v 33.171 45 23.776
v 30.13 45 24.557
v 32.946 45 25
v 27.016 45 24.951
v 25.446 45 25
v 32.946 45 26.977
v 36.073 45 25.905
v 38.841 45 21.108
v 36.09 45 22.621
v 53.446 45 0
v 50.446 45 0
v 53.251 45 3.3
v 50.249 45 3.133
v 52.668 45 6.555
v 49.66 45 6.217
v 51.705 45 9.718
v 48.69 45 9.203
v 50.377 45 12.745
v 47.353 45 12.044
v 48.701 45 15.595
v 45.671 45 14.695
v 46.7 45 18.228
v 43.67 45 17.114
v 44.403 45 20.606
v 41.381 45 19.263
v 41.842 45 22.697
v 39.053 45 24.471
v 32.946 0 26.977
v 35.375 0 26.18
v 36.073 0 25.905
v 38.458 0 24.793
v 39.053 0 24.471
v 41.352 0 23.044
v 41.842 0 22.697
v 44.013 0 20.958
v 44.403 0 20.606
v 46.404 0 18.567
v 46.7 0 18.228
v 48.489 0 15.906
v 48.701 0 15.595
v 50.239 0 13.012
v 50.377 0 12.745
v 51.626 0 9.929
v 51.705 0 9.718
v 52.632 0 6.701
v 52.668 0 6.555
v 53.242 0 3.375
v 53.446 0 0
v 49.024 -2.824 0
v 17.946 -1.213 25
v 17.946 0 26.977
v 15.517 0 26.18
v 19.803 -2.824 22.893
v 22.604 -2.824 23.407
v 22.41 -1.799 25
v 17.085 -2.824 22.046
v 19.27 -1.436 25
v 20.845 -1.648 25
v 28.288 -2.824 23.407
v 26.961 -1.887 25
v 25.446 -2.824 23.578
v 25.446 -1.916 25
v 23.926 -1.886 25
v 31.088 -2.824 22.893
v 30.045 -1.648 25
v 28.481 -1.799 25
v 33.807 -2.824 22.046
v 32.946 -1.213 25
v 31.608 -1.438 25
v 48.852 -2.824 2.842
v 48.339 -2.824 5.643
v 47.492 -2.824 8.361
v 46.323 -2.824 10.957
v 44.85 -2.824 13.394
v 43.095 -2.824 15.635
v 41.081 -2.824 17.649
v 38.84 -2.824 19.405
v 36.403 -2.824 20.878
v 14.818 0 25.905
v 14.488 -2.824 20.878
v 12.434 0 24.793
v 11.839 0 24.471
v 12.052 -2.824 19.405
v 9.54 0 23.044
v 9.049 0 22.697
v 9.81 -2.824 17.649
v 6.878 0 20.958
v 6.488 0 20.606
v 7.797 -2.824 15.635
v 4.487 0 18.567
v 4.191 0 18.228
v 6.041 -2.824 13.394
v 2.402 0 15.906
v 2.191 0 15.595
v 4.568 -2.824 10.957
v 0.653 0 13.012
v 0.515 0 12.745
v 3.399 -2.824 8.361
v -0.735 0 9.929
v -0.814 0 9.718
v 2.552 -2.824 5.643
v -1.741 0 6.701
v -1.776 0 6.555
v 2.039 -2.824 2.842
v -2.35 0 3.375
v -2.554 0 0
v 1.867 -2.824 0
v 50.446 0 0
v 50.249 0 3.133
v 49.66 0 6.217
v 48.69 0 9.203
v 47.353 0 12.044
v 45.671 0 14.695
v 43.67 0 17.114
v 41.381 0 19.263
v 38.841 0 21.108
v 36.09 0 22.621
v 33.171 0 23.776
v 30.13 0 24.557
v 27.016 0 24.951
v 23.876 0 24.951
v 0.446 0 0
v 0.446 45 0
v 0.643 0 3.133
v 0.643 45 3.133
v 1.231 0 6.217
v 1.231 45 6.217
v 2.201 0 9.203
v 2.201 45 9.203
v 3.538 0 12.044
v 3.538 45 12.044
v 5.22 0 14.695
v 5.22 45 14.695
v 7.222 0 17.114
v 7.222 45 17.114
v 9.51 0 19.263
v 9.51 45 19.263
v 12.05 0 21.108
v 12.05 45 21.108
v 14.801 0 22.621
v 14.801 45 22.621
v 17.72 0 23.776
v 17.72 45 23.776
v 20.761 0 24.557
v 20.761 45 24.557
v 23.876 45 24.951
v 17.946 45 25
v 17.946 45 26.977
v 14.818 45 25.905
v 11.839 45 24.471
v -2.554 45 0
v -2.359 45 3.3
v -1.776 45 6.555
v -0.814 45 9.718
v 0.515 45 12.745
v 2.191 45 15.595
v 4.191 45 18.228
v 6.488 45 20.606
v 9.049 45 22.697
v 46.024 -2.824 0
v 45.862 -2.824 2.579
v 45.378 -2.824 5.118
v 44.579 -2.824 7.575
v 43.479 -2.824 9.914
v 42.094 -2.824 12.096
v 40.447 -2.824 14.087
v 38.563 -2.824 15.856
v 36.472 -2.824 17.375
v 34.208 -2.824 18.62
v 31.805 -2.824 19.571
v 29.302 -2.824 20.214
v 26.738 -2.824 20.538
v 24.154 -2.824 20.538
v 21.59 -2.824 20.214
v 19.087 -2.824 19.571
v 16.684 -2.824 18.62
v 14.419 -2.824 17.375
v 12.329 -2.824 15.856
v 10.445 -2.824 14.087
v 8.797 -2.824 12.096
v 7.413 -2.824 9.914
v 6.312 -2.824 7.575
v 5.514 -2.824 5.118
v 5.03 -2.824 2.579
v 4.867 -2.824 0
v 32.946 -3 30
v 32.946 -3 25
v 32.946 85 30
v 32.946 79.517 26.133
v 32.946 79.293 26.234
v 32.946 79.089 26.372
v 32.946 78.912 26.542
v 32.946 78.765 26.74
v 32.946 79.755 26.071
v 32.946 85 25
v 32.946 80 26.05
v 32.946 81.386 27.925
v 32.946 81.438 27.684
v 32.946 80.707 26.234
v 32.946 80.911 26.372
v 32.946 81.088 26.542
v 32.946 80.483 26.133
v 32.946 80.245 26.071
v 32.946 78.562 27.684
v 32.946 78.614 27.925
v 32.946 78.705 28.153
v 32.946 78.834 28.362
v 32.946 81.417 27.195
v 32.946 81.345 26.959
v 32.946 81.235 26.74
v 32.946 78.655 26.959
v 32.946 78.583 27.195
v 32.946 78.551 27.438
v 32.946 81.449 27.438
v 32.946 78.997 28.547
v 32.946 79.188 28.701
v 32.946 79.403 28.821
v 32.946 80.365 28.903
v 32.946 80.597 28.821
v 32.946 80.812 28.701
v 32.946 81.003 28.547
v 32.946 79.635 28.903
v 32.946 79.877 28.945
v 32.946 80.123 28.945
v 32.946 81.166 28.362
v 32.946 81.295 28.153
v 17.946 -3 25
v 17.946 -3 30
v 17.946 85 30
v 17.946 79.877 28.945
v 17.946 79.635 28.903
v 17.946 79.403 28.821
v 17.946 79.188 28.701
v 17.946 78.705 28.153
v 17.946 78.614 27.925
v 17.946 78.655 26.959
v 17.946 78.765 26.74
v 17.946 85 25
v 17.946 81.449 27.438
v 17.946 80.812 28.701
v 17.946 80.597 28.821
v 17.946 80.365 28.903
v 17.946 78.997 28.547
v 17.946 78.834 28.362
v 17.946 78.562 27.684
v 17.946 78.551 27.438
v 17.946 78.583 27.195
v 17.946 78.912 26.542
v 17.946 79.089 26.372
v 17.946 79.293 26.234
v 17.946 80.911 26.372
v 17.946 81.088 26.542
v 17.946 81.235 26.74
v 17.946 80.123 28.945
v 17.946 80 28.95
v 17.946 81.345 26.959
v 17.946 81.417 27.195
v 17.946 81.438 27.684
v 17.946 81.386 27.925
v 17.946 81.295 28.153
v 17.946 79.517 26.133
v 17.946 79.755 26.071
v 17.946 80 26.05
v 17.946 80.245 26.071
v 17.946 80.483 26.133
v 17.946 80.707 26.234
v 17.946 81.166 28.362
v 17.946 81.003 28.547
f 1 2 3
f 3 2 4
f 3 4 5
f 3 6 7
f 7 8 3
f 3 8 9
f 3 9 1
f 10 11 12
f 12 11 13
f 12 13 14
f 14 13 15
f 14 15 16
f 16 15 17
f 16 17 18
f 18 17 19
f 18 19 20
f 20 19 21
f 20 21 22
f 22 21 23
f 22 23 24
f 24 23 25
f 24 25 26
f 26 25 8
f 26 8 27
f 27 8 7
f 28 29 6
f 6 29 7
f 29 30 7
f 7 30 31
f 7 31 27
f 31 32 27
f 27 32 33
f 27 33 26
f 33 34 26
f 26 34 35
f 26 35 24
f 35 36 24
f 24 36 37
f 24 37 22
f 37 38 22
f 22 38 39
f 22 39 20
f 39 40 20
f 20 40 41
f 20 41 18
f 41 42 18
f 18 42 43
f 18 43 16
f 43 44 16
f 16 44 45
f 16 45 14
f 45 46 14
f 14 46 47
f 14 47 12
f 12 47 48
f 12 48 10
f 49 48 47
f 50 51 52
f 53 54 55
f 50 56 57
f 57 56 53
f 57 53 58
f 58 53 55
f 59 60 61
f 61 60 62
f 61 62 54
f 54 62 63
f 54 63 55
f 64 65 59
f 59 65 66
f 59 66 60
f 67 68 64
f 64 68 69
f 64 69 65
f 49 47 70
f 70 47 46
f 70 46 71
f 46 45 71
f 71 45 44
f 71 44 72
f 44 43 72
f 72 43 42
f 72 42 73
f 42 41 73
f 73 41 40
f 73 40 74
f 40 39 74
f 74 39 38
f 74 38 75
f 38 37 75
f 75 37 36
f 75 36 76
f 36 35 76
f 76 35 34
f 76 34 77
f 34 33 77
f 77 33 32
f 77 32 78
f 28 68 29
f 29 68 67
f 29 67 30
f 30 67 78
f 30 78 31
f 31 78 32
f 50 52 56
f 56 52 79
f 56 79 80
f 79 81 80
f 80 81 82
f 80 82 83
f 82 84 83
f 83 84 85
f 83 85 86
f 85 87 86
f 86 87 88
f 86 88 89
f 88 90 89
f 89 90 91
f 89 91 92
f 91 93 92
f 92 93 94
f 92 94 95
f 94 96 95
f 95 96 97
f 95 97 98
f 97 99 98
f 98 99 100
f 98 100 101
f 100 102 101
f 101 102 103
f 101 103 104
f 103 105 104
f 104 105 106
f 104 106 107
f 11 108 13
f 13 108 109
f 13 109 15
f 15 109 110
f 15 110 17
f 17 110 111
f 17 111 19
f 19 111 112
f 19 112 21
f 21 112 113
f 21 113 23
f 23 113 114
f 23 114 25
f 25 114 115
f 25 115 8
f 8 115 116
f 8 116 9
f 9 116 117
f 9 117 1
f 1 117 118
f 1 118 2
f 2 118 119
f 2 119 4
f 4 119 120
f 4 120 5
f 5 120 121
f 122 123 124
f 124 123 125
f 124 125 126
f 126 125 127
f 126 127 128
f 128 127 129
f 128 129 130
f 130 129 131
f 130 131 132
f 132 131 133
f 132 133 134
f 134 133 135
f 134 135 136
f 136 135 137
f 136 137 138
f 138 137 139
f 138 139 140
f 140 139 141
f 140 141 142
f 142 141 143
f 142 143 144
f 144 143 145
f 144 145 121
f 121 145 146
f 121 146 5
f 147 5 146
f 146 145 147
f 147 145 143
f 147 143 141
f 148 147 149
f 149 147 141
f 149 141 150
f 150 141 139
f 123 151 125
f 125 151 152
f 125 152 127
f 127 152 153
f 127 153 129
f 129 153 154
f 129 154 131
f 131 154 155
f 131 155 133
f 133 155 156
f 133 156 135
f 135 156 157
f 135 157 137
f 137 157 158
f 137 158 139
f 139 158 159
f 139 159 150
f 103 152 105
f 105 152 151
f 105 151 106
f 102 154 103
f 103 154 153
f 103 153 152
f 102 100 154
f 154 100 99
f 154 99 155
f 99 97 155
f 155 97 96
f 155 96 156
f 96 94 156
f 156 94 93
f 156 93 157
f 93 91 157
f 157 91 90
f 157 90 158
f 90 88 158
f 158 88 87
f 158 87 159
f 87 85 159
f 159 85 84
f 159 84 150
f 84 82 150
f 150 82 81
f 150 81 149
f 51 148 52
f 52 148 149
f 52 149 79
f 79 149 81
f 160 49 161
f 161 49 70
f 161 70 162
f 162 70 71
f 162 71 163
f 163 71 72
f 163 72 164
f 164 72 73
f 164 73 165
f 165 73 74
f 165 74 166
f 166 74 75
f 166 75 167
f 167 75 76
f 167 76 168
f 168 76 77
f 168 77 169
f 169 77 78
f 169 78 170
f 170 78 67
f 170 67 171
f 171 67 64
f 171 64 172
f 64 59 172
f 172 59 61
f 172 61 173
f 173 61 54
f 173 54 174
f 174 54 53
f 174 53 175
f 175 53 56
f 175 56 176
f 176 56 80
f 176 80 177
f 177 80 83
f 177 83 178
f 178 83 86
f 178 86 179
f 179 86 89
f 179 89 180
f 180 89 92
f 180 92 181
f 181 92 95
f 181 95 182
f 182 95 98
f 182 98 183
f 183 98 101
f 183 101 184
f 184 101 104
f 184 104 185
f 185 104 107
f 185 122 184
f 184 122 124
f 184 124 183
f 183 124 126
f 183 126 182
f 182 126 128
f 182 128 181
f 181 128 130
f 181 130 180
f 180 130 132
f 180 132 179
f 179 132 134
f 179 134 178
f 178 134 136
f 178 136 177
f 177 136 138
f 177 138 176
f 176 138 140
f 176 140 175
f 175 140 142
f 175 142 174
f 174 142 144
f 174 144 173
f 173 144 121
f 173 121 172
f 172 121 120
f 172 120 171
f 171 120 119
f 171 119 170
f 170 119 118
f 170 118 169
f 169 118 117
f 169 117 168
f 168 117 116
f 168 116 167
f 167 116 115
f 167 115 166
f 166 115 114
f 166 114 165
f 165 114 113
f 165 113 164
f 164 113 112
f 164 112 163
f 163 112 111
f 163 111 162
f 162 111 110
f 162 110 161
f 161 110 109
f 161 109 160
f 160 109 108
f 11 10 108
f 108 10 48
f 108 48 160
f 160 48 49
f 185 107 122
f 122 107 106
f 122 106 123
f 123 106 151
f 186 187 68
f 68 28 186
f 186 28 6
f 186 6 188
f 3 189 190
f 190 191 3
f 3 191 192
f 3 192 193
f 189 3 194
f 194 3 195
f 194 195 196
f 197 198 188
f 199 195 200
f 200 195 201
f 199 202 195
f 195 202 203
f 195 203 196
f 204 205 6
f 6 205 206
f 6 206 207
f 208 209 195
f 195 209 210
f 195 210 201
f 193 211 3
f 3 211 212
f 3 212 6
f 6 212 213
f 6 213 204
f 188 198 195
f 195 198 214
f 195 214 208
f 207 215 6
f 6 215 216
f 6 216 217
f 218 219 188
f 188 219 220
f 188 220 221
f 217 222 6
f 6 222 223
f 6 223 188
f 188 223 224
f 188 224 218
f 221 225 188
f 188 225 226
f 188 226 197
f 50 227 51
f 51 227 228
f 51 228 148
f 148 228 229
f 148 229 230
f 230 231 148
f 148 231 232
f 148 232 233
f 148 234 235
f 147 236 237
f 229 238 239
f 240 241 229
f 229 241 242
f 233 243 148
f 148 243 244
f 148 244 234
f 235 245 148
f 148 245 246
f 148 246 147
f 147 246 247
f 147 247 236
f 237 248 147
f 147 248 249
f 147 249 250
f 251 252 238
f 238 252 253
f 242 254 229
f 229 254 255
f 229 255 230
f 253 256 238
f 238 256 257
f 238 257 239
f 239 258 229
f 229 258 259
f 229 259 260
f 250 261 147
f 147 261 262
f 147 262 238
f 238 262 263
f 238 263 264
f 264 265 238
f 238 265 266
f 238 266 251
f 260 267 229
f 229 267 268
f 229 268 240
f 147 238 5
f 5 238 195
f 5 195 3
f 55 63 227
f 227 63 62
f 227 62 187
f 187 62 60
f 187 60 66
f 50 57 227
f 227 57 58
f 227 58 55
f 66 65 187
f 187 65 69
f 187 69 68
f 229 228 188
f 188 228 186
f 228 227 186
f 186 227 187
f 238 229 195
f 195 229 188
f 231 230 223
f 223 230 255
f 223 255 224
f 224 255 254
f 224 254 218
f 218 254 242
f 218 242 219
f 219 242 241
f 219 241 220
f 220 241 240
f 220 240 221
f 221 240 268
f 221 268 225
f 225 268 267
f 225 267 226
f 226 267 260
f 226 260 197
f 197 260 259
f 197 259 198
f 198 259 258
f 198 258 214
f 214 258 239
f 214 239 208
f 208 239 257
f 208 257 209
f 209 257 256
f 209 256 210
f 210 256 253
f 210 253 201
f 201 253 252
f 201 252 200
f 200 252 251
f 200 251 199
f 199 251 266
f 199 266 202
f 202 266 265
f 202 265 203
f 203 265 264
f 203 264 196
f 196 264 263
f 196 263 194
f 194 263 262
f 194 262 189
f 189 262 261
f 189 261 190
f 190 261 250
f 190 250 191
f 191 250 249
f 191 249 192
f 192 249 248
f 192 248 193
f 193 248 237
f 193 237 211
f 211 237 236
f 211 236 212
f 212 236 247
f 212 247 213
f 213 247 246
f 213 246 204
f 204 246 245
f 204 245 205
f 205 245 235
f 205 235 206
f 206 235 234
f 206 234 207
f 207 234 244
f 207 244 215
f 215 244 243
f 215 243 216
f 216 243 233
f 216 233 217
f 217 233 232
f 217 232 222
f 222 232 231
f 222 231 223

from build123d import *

# Parameters (mm, degrees)
REVOLVE_1_ANGLE      = 180
EXTRUDE_2_DEPTH      = 40
EXTRUDE_2_DEPTH_BACK = 48
SKETCH_3_R           = 1.45
CUT_EXTRUDE_1_DEPTH  = 40


with BuildPart() as part:
    # 草图1 → 旋转1 (revolve)
    with BuildSketch(Plane.XY):
        Polygon((0.445759369, 0), (4.86726431, -2.823603424), (1.86726431, -2.823603424), (-2.554240631, 0), (-2.554240631, 45), (0.445759369, 45), align=None)
    revolve(axis=Axis((25.445759369, 0, 0), (0, 1, 0)), revolution_arc=REVOLVE_1_ANGLE)

    # 草图2 → 凸台-拉伸2 (add, two sides: drawn at the far end of the back side and taken through both)
    with BuildSketch(Plane(origin=(0, 45, 0), x_dir=(1, 0, 0), z_dir=(0, 1, 0)).offset(-EXTRUDE_2_DEPTH_BACK)):
        with BuildLine():
            Line((32.945759369, -30), (32.945759369, -26.97684192))
            ThreePointArc((32.945759369, -26.97684192), (25.445759369, -28), (17.945759369, -26.97684192))
            Line((17.945759369, -26.97684192), (17.945759369, -30))
            Line((17.945759369, -30), (32.945759369, -30))
        make_face()
        with BuildLine():
            Line((32.945759369, -25), (25.445759369, -25))
            Line((25.445759369, -25), (17.945759369, -25))
            Line((17.945759369, -25), (17.945759369, -26.97684192))
            ThreePointArc((17.945759369, -26.97684192), (25.445759369, -28), (32.945759369, -26.97684192))
            Line((32.945759369, -26.97684192), (32.945759369, -25))
        make_face()
    extrude(amount=EXTRUDE_2_DEPTH + EXTRUDE_2_DEPTH_BACK)

    # 草图3 → 切除-拉伸1 (cut)
    with BuildSketch(Plane(origin=(32.945759369, 0, 0), x_dir=(0, 0, -1), z_dir=(1, 0, 0))):
        with Locations((-27.5, 80)):
            Circle(SKETCH_3_R)
    extrude(amount=-CUT_EXTRUDE_1_DEPTH, mode=Mode.SUBTRACT)


solid = part.part
